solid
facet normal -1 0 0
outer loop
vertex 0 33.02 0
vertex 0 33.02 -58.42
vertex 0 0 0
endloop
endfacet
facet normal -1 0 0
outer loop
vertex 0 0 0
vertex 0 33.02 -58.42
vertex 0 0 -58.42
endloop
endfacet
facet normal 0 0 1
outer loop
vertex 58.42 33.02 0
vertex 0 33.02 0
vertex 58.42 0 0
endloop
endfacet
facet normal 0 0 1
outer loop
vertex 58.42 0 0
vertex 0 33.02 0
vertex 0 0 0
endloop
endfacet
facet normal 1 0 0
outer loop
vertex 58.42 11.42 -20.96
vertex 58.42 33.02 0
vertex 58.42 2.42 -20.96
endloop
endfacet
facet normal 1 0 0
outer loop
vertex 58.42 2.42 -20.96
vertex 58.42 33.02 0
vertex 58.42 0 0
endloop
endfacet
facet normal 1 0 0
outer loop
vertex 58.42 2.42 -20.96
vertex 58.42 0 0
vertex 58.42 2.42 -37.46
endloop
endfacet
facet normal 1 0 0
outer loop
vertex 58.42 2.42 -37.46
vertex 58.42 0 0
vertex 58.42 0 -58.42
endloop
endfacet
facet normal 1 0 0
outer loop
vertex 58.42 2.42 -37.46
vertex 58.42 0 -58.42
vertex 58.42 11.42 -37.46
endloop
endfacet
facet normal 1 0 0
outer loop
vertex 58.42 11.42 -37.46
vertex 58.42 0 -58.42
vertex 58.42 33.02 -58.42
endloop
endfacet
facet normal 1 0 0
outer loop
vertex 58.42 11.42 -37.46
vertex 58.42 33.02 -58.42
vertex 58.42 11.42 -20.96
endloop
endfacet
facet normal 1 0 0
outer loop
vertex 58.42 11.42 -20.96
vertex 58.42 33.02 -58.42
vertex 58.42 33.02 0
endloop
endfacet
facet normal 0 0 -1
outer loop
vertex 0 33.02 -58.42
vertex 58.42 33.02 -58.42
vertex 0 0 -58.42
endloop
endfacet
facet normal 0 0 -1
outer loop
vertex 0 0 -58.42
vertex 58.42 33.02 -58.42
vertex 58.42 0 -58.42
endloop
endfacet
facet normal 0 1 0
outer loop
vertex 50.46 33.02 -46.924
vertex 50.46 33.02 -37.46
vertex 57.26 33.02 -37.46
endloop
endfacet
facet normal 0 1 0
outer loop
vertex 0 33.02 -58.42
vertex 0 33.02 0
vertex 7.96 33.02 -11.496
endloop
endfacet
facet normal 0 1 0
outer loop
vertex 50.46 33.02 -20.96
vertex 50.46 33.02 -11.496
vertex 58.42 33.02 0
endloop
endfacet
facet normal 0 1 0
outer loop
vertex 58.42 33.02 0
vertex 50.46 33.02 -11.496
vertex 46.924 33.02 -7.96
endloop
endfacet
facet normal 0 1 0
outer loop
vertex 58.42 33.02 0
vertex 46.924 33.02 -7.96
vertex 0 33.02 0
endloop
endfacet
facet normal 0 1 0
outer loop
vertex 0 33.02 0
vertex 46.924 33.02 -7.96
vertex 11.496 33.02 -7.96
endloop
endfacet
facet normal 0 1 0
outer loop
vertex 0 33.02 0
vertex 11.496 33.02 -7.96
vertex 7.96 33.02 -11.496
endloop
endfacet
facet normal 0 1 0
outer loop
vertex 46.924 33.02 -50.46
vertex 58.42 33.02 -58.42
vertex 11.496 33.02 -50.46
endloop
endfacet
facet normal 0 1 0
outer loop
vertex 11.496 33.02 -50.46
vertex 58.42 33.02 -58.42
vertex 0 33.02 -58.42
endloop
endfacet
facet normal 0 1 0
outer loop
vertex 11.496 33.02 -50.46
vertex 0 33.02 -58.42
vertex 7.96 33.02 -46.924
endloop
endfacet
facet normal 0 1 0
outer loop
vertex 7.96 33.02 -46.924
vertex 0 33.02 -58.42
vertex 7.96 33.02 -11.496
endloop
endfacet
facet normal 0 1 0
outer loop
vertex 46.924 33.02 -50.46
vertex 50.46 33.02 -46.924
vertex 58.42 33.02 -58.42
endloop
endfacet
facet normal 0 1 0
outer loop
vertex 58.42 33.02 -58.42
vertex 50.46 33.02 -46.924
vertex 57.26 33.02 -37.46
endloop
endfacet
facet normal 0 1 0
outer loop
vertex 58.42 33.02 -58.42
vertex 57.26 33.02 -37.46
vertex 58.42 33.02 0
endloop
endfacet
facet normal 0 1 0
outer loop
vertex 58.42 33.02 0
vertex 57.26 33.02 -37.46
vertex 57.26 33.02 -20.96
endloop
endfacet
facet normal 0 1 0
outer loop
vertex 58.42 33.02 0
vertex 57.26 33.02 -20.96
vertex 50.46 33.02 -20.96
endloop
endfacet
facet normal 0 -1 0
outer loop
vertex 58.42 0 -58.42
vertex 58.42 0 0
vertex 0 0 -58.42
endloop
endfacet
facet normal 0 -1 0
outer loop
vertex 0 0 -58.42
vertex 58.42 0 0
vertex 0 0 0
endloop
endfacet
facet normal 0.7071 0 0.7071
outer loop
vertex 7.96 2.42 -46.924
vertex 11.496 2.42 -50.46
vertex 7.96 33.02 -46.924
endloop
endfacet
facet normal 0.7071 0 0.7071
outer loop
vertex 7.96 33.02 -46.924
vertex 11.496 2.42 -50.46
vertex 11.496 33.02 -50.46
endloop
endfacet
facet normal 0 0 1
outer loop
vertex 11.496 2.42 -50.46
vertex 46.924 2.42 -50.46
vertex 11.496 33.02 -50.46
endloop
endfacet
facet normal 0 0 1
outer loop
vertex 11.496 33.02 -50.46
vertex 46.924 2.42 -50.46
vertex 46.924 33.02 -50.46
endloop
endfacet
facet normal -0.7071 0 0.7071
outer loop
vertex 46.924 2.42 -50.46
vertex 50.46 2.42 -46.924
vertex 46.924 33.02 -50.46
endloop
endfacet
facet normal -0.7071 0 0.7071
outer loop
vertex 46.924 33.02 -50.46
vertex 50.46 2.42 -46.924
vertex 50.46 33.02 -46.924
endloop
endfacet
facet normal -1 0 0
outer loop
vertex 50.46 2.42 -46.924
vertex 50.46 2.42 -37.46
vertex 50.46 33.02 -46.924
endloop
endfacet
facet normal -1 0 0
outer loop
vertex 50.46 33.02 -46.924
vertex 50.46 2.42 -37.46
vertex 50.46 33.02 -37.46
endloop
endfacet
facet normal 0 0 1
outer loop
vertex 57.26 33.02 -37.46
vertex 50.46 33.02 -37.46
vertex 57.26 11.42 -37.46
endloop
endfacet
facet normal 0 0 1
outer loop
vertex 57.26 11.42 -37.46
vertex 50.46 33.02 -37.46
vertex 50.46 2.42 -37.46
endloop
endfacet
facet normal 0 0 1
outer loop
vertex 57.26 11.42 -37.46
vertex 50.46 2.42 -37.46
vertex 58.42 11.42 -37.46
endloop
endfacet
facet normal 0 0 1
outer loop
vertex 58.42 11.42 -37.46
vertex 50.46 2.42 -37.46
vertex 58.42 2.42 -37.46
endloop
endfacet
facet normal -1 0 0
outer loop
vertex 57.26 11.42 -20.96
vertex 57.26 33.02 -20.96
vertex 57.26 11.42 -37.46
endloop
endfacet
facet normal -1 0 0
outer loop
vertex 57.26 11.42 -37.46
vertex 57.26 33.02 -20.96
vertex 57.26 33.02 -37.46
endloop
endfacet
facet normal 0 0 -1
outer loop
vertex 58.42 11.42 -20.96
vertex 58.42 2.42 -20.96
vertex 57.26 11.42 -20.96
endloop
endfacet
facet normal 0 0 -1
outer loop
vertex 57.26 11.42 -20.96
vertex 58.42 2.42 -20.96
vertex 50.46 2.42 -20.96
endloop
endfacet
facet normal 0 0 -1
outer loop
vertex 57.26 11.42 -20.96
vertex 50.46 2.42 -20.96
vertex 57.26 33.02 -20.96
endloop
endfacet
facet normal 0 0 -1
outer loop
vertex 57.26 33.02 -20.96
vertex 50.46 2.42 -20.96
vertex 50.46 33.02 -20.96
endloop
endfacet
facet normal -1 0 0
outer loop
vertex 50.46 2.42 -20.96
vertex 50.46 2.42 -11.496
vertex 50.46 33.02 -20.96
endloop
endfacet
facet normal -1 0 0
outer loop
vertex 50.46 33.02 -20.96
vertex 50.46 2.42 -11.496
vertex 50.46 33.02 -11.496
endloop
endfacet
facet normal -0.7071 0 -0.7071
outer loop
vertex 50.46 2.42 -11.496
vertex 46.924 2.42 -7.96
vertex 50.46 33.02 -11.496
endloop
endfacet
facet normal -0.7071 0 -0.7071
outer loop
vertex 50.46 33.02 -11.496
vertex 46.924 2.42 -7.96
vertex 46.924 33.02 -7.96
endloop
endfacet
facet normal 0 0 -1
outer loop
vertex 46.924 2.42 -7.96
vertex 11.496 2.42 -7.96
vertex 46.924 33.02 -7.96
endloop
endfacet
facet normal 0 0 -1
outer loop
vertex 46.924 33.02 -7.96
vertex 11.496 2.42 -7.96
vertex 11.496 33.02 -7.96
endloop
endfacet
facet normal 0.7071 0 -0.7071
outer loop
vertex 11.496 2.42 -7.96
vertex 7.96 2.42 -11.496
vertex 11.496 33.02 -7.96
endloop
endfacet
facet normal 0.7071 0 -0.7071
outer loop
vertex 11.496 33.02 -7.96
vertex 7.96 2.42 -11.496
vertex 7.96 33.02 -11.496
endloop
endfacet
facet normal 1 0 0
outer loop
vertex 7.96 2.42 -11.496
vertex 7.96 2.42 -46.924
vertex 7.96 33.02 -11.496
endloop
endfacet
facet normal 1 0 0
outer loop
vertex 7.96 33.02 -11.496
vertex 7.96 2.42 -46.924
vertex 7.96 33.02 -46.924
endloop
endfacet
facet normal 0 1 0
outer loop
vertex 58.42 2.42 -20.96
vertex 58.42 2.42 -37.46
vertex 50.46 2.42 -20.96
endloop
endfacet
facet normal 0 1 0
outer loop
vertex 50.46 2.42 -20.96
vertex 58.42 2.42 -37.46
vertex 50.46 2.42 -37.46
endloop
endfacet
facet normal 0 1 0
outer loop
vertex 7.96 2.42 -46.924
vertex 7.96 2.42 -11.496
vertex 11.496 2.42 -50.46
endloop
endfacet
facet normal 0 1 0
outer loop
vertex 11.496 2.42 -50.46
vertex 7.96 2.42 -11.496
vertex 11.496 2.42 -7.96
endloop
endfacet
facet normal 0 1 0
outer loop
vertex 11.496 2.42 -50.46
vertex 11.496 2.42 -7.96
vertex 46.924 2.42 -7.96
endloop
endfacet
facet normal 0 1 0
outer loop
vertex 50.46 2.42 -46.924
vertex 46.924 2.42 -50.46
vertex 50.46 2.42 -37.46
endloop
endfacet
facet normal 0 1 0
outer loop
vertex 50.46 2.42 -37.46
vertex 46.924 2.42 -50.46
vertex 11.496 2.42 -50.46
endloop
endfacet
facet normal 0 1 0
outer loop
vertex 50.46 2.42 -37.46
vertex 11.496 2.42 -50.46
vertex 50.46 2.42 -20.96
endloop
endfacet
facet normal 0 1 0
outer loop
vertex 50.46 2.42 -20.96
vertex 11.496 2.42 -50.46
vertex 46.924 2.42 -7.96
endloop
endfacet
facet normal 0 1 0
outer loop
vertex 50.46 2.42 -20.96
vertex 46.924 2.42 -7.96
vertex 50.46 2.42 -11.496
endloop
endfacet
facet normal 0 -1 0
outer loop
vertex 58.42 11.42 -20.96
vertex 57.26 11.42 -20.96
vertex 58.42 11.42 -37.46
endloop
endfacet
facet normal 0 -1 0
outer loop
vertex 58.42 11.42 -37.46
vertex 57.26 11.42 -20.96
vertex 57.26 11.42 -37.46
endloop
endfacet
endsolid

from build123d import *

# Parameters (mm, degrees)
SKETCH1_W           = 58.42
SKETCH1_H           = 58.42
BOSS_EXTRUDE1_DEPTH = 33.02
CUT_EXTRUDE1_DEPTH  = 30.600000014
SKETCH3_W           = 16.5
SKETCH3_H           = 9
CUT_EXTRUDE2_DEPTH  = 30.600000014


with BuildPart() as part:
    # Sketch1 → Boss-Extrude1 (new body)
    with BuildSketch(Plane(origin=(0, 0, 0), x_dir=(1, 0, 0), z_dir=(0, 1, 0))):
        with Locations((29.21, 29.21)):
            Rectangle(SKETCH1_W, SKETCH1_H)
    extrude(amount=BOSS_EXTRUDE1_DEPTH)

    # Sketch2 → Cut-Extrude1 (cut)
    with BuildSketch(Plane(origin=(0, 33.02, 0), x_dir=(1, 0, 0), z_dir=(0, 1, 0))):
        Polygon((11.495533906, 50.46), (46.924466094, 50.46), (50.46, 46.924466094), (50.46, 37.46), (57.26, 37.46), (57.26, 20.96), (50.46, 20.96), (50.46, 11.495533906), (46.924466094, 7.96), (11.495533906, 7.96), (7.96, 11.495533906), (7.96, 46.924466094), align=None)
    extrude(amount=-CUT_EXTRUDE1_DEPTH, mode=Mode.SUBTRACT)

    # Sketch3 → Cut-Extrude2 (cut)
    with BuildSketch(Plane(origin=(58.42, 0, 0), x_dir=(0, 0, -1), z_dir=(1, 0, 0))):
        with Locations((29.21, 6.919999986)):
            Rectangle(SKETCH3_W, SKETCH3_H)
    extrude(amount=-CUT_EXTRUDE2_DEPTH, mode=Mode.SUBTRACT)


solid = part.part
